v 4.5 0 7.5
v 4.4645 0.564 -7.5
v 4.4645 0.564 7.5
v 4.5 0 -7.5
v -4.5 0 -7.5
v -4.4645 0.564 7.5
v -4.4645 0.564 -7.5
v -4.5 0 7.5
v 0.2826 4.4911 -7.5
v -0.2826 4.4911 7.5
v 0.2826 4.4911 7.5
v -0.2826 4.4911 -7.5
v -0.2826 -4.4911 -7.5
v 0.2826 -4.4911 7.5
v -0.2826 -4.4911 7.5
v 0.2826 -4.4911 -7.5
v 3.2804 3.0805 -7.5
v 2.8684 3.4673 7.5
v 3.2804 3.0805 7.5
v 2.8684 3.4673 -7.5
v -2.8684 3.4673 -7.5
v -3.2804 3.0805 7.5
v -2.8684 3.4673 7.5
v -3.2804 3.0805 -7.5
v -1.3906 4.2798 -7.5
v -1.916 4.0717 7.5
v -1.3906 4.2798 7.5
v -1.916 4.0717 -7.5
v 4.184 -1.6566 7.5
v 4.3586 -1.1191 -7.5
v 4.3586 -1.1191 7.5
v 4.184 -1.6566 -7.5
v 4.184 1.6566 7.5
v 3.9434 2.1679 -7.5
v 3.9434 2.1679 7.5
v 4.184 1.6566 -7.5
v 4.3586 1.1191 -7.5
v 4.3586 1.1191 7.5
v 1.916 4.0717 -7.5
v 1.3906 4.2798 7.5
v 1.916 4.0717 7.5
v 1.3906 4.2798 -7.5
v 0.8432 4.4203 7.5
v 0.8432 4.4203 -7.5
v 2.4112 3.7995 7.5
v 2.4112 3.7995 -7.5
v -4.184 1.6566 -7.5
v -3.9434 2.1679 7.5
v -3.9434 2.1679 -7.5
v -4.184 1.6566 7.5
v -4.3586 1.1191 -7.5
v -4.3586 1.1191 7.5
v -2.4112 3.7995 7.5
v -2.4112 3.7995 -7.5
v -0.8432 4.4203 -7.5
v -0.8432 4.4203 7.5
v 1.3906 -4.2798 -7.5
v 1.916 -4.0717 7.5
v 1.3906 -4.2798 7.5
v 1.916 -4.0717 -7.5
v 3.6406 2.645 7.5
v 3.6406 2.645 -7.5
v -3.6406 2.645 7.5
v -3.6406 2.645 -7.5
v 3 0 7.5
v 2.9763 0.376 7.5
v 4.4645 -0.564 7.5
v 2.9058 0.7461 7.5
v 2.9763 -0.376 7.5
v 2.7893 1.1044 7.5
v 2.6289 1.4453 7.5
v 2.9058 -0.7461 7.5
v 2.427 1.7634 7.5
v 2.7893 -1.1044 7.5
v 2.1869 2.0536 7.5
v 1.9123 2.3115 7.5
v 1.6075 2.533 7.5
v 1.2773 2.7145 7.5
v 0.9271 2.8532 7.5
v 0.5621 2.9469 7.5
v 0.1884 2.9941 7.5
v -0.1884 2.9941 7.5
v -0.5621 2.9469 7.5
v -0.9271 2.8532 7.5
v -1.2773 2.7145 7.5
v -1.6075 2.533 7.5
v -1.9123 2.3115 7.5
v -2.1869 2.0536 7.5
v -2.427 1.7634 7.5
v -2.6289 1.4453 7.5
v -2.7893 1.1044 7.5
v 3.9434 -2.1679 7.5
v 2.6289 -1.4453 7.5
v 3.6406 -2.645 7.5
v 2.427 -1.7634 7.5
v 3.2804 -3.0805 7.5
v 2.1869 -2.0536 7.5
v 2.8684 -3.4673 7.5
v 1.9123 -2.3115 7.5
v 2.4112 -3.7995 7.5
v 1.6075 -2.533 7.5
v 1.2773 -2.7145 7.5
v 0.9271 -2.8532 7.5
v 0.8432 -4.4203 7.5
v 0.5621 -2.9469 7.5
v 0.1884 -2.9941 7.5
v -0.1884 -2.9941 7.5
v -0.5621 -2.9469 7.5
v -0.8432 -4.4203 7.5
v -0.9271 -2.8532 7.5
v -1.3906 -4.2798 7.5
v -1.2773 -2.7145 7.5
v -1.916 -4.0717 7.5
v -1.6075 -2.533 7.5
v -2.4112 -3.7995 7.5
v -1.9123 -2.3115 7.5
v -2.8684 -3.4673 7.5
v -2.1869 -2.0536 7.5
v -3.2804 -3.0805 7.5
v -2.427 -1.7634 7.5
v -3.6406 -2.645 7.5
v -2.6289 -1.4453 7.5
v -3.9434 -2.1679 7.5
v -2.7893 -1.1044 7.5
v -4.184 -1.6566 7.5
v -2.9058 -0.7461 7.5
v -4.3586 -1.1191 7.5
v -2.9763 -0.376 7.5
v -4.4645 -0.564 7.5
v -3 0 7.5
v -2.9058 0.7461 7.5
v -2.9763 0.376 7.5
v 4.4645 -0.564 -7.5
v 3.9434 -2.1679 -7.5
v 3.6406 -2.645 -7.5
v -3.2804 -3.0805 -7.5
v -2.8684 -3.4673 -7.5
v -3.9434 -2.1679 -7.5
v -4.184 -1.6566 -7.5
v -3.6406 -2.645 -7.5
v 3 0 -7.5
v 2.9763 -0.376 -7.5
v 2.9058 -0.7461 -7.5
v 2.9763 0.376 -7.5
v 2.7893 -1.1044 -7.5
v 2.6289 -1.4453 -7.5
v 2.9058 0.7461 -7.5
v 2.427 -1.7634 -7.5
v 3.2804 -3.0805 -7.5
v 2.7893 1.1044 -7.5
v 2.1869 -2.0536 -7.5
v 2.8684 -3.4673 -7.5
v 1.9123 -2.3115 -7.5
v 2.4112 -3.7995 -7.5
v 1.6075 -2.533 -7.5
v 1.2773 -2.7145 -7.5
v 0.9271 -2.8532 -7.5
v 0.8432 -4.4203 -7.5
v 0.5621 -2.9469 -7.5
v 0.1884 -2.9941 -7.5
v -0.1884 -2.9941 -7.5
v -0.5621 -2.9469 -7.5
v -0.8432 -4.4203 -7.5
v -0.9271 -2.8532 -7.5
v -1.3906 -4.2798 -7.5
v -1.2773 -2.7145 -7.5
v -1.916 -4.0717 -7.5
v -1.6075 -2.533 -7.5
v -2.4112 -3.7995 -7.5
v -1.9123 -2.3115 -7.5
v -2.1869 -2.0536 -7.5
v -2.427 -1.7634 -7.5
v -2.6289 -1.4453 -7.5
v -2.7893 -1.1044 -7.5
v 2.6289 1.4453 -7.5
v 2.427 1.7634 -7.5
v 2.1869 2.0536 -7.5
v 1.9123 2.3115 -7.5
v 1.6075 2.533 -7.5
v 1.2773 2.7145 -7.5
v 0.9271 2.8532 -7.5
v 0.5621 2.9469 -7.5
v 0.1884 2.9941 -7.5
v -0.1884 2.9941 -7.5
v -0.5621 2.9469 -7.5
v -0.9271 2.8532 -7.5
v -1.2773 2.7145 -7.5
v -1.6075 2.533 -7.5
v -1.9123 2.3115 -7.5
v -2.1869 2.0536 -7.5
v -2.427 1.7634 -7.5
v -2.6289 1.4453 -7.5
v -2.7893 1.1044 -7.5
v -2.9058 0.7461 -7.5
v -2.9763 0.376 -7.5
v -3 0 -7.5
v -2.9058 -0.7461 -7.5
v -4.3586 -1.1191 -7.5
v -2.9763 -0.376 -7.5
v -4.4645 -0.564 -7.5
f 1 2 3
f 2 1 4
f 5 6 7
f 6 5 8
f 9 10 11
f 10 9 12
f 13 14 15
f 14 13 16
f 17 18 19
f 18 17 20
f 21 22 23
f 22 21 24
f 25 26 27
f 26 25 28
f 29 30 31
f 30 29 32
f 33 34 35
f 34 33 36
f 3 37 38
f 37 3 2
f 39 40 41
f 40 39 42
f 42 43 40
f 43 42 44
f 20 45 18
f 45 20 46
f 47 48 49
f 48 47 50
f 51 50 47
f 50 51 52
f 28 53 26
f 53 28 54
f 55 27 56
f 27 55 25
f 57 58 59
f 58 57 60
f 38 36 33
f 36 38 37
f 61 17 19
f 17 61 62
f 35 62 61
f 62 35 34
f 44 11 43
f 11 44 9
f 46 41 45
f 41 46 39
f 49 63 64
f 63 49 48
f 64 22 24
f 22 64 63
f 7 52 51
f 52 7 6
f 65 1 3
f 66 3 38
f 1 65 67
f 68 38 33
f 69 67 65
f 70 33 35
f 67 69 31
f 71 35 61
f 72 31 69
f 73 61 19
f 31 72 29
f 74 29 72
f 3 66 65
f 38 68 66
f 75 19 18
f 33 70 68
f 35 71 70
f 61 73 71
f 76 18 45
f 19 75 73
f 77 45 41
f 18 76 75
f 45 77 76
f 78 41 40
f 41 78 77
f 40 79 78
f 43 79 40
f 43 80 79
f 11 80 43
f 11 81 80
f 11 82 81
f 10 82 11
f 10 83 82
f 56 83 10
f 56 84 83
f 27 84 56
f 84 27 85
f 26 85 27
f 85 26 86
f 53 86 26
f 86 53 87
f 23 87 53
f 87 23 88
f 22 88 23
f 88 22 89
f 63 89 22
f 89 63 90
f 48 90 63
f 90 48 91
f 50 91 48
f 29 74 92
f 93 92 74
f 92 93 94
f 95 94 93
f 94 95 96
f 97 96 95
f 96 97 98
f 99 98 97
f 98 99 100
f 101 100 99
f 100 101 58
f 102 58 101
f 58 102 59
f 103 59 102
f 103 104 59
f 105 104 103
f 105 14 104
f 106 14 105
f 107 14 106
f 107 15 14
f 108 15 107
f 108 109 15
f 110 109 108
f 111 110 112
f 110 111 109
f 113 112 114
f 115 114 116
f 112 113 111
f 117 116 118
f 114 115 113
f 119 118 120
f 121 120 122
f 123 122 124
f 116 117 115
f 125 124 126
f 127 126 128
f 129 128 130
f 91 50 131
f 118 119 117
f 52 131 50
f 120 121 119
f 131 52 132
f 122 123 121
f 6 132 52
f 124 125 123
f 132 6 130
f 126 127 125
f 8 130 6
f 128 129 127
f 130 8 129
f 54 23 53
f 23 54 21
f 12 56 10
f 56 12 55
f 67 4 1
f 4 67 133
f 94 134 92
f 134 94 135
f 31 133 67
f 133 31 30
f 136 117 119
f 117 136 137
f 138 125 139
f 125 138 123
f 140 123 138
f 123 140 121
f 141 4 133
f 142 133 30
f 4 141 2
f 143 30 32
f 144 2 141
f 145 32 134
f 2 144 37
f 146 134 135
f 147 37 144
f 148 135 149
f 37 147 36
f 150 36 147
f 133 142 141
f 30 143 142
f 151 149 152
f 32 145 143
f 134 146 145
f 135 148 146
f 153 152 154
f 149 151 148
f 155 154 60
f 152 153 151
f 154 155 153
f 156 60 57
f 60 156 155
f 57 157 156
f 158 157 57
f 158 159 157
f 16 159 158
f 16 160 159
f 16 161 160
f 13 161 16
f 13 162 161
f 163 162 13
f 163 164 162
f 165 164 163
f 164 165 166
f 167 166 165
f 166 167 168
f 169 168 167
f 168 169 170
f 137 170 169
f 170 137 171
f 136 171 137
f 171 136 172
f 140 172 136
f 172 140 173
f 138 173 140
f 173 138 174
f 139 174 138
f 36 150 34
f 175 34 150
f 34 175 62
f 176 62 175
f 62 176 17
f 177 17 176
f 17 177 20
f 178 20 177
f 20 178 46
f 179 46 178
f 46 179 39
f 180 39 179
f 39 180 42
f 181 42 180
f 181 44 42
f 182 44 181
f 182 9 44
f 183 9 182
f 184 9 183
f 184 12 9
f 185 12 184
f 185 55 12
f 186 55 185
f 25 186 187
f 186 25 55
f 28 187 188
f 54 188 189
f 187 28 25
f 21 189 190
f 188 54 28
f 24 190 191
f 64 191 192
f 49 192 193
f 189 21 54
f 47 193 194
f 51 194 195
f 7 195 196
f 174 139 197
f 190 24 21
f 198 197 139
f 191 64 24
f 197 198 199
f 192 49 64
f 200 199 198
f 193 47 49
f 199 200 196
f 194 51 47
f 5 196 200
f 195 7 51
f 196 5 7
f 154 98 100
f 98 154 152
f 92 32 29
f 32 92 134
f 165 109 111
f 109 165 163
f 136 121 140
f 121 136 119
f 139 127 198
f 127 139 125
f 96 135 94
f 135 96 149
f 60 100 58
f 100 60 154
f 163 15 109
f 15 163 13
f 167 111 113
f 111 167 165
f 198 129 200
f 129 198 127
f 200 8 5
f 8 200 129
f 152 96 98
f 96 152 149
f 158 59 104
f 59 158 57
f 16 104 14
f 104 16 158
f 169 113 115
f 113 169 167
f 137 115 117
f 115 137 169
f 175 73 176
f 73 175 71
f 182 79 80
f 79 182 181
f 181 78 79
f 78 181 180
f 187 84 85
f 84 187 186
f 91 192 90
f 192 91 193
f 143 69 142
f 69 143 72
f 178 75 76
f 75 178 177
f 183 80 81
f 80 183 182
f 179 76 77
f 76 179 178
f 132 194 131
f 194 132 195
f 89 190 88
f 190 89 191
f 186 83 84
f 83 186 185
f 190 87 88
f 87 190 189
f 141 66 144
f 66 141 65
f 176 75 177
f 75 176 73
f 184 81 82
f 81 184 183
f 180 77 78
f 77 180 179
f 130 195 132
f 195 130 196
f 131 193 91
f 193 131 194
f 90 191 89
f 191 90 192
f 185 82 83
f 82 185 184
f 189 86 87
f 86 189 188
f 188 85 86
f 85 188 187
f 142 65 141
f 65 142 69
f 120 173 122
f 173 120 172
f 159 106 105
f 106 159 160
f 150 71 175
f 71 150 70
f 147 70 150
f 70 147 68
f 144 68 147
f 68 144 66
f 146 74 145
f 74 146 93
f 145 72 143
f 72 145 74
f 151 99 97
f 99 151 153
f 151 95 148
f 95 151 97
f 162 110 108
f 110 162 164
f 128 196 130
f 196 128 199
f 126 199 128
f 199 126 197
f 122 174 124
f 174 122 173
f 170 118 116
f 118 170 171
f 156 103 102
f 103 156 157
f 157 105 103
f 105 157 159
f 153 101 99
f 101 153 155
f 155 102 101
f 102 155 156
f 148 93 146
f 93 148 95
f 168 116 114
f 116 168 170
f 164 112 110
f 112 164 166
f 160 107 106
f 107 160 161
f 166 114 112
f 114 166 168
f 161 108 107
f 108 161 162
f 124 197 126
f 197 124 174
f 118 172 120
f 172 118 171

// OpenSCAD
$fn = 50;


difference() {
	union() {
		translate(v = [0, 0, -7.5000000000]) {
			cylinder(h = 15, r = 4.5000000000);
		}
	}
	union() {
		translate(v = [0, 0, -100.0000000000]) {
			cylinder(h = 200, r = 3);
		}
	}
}
